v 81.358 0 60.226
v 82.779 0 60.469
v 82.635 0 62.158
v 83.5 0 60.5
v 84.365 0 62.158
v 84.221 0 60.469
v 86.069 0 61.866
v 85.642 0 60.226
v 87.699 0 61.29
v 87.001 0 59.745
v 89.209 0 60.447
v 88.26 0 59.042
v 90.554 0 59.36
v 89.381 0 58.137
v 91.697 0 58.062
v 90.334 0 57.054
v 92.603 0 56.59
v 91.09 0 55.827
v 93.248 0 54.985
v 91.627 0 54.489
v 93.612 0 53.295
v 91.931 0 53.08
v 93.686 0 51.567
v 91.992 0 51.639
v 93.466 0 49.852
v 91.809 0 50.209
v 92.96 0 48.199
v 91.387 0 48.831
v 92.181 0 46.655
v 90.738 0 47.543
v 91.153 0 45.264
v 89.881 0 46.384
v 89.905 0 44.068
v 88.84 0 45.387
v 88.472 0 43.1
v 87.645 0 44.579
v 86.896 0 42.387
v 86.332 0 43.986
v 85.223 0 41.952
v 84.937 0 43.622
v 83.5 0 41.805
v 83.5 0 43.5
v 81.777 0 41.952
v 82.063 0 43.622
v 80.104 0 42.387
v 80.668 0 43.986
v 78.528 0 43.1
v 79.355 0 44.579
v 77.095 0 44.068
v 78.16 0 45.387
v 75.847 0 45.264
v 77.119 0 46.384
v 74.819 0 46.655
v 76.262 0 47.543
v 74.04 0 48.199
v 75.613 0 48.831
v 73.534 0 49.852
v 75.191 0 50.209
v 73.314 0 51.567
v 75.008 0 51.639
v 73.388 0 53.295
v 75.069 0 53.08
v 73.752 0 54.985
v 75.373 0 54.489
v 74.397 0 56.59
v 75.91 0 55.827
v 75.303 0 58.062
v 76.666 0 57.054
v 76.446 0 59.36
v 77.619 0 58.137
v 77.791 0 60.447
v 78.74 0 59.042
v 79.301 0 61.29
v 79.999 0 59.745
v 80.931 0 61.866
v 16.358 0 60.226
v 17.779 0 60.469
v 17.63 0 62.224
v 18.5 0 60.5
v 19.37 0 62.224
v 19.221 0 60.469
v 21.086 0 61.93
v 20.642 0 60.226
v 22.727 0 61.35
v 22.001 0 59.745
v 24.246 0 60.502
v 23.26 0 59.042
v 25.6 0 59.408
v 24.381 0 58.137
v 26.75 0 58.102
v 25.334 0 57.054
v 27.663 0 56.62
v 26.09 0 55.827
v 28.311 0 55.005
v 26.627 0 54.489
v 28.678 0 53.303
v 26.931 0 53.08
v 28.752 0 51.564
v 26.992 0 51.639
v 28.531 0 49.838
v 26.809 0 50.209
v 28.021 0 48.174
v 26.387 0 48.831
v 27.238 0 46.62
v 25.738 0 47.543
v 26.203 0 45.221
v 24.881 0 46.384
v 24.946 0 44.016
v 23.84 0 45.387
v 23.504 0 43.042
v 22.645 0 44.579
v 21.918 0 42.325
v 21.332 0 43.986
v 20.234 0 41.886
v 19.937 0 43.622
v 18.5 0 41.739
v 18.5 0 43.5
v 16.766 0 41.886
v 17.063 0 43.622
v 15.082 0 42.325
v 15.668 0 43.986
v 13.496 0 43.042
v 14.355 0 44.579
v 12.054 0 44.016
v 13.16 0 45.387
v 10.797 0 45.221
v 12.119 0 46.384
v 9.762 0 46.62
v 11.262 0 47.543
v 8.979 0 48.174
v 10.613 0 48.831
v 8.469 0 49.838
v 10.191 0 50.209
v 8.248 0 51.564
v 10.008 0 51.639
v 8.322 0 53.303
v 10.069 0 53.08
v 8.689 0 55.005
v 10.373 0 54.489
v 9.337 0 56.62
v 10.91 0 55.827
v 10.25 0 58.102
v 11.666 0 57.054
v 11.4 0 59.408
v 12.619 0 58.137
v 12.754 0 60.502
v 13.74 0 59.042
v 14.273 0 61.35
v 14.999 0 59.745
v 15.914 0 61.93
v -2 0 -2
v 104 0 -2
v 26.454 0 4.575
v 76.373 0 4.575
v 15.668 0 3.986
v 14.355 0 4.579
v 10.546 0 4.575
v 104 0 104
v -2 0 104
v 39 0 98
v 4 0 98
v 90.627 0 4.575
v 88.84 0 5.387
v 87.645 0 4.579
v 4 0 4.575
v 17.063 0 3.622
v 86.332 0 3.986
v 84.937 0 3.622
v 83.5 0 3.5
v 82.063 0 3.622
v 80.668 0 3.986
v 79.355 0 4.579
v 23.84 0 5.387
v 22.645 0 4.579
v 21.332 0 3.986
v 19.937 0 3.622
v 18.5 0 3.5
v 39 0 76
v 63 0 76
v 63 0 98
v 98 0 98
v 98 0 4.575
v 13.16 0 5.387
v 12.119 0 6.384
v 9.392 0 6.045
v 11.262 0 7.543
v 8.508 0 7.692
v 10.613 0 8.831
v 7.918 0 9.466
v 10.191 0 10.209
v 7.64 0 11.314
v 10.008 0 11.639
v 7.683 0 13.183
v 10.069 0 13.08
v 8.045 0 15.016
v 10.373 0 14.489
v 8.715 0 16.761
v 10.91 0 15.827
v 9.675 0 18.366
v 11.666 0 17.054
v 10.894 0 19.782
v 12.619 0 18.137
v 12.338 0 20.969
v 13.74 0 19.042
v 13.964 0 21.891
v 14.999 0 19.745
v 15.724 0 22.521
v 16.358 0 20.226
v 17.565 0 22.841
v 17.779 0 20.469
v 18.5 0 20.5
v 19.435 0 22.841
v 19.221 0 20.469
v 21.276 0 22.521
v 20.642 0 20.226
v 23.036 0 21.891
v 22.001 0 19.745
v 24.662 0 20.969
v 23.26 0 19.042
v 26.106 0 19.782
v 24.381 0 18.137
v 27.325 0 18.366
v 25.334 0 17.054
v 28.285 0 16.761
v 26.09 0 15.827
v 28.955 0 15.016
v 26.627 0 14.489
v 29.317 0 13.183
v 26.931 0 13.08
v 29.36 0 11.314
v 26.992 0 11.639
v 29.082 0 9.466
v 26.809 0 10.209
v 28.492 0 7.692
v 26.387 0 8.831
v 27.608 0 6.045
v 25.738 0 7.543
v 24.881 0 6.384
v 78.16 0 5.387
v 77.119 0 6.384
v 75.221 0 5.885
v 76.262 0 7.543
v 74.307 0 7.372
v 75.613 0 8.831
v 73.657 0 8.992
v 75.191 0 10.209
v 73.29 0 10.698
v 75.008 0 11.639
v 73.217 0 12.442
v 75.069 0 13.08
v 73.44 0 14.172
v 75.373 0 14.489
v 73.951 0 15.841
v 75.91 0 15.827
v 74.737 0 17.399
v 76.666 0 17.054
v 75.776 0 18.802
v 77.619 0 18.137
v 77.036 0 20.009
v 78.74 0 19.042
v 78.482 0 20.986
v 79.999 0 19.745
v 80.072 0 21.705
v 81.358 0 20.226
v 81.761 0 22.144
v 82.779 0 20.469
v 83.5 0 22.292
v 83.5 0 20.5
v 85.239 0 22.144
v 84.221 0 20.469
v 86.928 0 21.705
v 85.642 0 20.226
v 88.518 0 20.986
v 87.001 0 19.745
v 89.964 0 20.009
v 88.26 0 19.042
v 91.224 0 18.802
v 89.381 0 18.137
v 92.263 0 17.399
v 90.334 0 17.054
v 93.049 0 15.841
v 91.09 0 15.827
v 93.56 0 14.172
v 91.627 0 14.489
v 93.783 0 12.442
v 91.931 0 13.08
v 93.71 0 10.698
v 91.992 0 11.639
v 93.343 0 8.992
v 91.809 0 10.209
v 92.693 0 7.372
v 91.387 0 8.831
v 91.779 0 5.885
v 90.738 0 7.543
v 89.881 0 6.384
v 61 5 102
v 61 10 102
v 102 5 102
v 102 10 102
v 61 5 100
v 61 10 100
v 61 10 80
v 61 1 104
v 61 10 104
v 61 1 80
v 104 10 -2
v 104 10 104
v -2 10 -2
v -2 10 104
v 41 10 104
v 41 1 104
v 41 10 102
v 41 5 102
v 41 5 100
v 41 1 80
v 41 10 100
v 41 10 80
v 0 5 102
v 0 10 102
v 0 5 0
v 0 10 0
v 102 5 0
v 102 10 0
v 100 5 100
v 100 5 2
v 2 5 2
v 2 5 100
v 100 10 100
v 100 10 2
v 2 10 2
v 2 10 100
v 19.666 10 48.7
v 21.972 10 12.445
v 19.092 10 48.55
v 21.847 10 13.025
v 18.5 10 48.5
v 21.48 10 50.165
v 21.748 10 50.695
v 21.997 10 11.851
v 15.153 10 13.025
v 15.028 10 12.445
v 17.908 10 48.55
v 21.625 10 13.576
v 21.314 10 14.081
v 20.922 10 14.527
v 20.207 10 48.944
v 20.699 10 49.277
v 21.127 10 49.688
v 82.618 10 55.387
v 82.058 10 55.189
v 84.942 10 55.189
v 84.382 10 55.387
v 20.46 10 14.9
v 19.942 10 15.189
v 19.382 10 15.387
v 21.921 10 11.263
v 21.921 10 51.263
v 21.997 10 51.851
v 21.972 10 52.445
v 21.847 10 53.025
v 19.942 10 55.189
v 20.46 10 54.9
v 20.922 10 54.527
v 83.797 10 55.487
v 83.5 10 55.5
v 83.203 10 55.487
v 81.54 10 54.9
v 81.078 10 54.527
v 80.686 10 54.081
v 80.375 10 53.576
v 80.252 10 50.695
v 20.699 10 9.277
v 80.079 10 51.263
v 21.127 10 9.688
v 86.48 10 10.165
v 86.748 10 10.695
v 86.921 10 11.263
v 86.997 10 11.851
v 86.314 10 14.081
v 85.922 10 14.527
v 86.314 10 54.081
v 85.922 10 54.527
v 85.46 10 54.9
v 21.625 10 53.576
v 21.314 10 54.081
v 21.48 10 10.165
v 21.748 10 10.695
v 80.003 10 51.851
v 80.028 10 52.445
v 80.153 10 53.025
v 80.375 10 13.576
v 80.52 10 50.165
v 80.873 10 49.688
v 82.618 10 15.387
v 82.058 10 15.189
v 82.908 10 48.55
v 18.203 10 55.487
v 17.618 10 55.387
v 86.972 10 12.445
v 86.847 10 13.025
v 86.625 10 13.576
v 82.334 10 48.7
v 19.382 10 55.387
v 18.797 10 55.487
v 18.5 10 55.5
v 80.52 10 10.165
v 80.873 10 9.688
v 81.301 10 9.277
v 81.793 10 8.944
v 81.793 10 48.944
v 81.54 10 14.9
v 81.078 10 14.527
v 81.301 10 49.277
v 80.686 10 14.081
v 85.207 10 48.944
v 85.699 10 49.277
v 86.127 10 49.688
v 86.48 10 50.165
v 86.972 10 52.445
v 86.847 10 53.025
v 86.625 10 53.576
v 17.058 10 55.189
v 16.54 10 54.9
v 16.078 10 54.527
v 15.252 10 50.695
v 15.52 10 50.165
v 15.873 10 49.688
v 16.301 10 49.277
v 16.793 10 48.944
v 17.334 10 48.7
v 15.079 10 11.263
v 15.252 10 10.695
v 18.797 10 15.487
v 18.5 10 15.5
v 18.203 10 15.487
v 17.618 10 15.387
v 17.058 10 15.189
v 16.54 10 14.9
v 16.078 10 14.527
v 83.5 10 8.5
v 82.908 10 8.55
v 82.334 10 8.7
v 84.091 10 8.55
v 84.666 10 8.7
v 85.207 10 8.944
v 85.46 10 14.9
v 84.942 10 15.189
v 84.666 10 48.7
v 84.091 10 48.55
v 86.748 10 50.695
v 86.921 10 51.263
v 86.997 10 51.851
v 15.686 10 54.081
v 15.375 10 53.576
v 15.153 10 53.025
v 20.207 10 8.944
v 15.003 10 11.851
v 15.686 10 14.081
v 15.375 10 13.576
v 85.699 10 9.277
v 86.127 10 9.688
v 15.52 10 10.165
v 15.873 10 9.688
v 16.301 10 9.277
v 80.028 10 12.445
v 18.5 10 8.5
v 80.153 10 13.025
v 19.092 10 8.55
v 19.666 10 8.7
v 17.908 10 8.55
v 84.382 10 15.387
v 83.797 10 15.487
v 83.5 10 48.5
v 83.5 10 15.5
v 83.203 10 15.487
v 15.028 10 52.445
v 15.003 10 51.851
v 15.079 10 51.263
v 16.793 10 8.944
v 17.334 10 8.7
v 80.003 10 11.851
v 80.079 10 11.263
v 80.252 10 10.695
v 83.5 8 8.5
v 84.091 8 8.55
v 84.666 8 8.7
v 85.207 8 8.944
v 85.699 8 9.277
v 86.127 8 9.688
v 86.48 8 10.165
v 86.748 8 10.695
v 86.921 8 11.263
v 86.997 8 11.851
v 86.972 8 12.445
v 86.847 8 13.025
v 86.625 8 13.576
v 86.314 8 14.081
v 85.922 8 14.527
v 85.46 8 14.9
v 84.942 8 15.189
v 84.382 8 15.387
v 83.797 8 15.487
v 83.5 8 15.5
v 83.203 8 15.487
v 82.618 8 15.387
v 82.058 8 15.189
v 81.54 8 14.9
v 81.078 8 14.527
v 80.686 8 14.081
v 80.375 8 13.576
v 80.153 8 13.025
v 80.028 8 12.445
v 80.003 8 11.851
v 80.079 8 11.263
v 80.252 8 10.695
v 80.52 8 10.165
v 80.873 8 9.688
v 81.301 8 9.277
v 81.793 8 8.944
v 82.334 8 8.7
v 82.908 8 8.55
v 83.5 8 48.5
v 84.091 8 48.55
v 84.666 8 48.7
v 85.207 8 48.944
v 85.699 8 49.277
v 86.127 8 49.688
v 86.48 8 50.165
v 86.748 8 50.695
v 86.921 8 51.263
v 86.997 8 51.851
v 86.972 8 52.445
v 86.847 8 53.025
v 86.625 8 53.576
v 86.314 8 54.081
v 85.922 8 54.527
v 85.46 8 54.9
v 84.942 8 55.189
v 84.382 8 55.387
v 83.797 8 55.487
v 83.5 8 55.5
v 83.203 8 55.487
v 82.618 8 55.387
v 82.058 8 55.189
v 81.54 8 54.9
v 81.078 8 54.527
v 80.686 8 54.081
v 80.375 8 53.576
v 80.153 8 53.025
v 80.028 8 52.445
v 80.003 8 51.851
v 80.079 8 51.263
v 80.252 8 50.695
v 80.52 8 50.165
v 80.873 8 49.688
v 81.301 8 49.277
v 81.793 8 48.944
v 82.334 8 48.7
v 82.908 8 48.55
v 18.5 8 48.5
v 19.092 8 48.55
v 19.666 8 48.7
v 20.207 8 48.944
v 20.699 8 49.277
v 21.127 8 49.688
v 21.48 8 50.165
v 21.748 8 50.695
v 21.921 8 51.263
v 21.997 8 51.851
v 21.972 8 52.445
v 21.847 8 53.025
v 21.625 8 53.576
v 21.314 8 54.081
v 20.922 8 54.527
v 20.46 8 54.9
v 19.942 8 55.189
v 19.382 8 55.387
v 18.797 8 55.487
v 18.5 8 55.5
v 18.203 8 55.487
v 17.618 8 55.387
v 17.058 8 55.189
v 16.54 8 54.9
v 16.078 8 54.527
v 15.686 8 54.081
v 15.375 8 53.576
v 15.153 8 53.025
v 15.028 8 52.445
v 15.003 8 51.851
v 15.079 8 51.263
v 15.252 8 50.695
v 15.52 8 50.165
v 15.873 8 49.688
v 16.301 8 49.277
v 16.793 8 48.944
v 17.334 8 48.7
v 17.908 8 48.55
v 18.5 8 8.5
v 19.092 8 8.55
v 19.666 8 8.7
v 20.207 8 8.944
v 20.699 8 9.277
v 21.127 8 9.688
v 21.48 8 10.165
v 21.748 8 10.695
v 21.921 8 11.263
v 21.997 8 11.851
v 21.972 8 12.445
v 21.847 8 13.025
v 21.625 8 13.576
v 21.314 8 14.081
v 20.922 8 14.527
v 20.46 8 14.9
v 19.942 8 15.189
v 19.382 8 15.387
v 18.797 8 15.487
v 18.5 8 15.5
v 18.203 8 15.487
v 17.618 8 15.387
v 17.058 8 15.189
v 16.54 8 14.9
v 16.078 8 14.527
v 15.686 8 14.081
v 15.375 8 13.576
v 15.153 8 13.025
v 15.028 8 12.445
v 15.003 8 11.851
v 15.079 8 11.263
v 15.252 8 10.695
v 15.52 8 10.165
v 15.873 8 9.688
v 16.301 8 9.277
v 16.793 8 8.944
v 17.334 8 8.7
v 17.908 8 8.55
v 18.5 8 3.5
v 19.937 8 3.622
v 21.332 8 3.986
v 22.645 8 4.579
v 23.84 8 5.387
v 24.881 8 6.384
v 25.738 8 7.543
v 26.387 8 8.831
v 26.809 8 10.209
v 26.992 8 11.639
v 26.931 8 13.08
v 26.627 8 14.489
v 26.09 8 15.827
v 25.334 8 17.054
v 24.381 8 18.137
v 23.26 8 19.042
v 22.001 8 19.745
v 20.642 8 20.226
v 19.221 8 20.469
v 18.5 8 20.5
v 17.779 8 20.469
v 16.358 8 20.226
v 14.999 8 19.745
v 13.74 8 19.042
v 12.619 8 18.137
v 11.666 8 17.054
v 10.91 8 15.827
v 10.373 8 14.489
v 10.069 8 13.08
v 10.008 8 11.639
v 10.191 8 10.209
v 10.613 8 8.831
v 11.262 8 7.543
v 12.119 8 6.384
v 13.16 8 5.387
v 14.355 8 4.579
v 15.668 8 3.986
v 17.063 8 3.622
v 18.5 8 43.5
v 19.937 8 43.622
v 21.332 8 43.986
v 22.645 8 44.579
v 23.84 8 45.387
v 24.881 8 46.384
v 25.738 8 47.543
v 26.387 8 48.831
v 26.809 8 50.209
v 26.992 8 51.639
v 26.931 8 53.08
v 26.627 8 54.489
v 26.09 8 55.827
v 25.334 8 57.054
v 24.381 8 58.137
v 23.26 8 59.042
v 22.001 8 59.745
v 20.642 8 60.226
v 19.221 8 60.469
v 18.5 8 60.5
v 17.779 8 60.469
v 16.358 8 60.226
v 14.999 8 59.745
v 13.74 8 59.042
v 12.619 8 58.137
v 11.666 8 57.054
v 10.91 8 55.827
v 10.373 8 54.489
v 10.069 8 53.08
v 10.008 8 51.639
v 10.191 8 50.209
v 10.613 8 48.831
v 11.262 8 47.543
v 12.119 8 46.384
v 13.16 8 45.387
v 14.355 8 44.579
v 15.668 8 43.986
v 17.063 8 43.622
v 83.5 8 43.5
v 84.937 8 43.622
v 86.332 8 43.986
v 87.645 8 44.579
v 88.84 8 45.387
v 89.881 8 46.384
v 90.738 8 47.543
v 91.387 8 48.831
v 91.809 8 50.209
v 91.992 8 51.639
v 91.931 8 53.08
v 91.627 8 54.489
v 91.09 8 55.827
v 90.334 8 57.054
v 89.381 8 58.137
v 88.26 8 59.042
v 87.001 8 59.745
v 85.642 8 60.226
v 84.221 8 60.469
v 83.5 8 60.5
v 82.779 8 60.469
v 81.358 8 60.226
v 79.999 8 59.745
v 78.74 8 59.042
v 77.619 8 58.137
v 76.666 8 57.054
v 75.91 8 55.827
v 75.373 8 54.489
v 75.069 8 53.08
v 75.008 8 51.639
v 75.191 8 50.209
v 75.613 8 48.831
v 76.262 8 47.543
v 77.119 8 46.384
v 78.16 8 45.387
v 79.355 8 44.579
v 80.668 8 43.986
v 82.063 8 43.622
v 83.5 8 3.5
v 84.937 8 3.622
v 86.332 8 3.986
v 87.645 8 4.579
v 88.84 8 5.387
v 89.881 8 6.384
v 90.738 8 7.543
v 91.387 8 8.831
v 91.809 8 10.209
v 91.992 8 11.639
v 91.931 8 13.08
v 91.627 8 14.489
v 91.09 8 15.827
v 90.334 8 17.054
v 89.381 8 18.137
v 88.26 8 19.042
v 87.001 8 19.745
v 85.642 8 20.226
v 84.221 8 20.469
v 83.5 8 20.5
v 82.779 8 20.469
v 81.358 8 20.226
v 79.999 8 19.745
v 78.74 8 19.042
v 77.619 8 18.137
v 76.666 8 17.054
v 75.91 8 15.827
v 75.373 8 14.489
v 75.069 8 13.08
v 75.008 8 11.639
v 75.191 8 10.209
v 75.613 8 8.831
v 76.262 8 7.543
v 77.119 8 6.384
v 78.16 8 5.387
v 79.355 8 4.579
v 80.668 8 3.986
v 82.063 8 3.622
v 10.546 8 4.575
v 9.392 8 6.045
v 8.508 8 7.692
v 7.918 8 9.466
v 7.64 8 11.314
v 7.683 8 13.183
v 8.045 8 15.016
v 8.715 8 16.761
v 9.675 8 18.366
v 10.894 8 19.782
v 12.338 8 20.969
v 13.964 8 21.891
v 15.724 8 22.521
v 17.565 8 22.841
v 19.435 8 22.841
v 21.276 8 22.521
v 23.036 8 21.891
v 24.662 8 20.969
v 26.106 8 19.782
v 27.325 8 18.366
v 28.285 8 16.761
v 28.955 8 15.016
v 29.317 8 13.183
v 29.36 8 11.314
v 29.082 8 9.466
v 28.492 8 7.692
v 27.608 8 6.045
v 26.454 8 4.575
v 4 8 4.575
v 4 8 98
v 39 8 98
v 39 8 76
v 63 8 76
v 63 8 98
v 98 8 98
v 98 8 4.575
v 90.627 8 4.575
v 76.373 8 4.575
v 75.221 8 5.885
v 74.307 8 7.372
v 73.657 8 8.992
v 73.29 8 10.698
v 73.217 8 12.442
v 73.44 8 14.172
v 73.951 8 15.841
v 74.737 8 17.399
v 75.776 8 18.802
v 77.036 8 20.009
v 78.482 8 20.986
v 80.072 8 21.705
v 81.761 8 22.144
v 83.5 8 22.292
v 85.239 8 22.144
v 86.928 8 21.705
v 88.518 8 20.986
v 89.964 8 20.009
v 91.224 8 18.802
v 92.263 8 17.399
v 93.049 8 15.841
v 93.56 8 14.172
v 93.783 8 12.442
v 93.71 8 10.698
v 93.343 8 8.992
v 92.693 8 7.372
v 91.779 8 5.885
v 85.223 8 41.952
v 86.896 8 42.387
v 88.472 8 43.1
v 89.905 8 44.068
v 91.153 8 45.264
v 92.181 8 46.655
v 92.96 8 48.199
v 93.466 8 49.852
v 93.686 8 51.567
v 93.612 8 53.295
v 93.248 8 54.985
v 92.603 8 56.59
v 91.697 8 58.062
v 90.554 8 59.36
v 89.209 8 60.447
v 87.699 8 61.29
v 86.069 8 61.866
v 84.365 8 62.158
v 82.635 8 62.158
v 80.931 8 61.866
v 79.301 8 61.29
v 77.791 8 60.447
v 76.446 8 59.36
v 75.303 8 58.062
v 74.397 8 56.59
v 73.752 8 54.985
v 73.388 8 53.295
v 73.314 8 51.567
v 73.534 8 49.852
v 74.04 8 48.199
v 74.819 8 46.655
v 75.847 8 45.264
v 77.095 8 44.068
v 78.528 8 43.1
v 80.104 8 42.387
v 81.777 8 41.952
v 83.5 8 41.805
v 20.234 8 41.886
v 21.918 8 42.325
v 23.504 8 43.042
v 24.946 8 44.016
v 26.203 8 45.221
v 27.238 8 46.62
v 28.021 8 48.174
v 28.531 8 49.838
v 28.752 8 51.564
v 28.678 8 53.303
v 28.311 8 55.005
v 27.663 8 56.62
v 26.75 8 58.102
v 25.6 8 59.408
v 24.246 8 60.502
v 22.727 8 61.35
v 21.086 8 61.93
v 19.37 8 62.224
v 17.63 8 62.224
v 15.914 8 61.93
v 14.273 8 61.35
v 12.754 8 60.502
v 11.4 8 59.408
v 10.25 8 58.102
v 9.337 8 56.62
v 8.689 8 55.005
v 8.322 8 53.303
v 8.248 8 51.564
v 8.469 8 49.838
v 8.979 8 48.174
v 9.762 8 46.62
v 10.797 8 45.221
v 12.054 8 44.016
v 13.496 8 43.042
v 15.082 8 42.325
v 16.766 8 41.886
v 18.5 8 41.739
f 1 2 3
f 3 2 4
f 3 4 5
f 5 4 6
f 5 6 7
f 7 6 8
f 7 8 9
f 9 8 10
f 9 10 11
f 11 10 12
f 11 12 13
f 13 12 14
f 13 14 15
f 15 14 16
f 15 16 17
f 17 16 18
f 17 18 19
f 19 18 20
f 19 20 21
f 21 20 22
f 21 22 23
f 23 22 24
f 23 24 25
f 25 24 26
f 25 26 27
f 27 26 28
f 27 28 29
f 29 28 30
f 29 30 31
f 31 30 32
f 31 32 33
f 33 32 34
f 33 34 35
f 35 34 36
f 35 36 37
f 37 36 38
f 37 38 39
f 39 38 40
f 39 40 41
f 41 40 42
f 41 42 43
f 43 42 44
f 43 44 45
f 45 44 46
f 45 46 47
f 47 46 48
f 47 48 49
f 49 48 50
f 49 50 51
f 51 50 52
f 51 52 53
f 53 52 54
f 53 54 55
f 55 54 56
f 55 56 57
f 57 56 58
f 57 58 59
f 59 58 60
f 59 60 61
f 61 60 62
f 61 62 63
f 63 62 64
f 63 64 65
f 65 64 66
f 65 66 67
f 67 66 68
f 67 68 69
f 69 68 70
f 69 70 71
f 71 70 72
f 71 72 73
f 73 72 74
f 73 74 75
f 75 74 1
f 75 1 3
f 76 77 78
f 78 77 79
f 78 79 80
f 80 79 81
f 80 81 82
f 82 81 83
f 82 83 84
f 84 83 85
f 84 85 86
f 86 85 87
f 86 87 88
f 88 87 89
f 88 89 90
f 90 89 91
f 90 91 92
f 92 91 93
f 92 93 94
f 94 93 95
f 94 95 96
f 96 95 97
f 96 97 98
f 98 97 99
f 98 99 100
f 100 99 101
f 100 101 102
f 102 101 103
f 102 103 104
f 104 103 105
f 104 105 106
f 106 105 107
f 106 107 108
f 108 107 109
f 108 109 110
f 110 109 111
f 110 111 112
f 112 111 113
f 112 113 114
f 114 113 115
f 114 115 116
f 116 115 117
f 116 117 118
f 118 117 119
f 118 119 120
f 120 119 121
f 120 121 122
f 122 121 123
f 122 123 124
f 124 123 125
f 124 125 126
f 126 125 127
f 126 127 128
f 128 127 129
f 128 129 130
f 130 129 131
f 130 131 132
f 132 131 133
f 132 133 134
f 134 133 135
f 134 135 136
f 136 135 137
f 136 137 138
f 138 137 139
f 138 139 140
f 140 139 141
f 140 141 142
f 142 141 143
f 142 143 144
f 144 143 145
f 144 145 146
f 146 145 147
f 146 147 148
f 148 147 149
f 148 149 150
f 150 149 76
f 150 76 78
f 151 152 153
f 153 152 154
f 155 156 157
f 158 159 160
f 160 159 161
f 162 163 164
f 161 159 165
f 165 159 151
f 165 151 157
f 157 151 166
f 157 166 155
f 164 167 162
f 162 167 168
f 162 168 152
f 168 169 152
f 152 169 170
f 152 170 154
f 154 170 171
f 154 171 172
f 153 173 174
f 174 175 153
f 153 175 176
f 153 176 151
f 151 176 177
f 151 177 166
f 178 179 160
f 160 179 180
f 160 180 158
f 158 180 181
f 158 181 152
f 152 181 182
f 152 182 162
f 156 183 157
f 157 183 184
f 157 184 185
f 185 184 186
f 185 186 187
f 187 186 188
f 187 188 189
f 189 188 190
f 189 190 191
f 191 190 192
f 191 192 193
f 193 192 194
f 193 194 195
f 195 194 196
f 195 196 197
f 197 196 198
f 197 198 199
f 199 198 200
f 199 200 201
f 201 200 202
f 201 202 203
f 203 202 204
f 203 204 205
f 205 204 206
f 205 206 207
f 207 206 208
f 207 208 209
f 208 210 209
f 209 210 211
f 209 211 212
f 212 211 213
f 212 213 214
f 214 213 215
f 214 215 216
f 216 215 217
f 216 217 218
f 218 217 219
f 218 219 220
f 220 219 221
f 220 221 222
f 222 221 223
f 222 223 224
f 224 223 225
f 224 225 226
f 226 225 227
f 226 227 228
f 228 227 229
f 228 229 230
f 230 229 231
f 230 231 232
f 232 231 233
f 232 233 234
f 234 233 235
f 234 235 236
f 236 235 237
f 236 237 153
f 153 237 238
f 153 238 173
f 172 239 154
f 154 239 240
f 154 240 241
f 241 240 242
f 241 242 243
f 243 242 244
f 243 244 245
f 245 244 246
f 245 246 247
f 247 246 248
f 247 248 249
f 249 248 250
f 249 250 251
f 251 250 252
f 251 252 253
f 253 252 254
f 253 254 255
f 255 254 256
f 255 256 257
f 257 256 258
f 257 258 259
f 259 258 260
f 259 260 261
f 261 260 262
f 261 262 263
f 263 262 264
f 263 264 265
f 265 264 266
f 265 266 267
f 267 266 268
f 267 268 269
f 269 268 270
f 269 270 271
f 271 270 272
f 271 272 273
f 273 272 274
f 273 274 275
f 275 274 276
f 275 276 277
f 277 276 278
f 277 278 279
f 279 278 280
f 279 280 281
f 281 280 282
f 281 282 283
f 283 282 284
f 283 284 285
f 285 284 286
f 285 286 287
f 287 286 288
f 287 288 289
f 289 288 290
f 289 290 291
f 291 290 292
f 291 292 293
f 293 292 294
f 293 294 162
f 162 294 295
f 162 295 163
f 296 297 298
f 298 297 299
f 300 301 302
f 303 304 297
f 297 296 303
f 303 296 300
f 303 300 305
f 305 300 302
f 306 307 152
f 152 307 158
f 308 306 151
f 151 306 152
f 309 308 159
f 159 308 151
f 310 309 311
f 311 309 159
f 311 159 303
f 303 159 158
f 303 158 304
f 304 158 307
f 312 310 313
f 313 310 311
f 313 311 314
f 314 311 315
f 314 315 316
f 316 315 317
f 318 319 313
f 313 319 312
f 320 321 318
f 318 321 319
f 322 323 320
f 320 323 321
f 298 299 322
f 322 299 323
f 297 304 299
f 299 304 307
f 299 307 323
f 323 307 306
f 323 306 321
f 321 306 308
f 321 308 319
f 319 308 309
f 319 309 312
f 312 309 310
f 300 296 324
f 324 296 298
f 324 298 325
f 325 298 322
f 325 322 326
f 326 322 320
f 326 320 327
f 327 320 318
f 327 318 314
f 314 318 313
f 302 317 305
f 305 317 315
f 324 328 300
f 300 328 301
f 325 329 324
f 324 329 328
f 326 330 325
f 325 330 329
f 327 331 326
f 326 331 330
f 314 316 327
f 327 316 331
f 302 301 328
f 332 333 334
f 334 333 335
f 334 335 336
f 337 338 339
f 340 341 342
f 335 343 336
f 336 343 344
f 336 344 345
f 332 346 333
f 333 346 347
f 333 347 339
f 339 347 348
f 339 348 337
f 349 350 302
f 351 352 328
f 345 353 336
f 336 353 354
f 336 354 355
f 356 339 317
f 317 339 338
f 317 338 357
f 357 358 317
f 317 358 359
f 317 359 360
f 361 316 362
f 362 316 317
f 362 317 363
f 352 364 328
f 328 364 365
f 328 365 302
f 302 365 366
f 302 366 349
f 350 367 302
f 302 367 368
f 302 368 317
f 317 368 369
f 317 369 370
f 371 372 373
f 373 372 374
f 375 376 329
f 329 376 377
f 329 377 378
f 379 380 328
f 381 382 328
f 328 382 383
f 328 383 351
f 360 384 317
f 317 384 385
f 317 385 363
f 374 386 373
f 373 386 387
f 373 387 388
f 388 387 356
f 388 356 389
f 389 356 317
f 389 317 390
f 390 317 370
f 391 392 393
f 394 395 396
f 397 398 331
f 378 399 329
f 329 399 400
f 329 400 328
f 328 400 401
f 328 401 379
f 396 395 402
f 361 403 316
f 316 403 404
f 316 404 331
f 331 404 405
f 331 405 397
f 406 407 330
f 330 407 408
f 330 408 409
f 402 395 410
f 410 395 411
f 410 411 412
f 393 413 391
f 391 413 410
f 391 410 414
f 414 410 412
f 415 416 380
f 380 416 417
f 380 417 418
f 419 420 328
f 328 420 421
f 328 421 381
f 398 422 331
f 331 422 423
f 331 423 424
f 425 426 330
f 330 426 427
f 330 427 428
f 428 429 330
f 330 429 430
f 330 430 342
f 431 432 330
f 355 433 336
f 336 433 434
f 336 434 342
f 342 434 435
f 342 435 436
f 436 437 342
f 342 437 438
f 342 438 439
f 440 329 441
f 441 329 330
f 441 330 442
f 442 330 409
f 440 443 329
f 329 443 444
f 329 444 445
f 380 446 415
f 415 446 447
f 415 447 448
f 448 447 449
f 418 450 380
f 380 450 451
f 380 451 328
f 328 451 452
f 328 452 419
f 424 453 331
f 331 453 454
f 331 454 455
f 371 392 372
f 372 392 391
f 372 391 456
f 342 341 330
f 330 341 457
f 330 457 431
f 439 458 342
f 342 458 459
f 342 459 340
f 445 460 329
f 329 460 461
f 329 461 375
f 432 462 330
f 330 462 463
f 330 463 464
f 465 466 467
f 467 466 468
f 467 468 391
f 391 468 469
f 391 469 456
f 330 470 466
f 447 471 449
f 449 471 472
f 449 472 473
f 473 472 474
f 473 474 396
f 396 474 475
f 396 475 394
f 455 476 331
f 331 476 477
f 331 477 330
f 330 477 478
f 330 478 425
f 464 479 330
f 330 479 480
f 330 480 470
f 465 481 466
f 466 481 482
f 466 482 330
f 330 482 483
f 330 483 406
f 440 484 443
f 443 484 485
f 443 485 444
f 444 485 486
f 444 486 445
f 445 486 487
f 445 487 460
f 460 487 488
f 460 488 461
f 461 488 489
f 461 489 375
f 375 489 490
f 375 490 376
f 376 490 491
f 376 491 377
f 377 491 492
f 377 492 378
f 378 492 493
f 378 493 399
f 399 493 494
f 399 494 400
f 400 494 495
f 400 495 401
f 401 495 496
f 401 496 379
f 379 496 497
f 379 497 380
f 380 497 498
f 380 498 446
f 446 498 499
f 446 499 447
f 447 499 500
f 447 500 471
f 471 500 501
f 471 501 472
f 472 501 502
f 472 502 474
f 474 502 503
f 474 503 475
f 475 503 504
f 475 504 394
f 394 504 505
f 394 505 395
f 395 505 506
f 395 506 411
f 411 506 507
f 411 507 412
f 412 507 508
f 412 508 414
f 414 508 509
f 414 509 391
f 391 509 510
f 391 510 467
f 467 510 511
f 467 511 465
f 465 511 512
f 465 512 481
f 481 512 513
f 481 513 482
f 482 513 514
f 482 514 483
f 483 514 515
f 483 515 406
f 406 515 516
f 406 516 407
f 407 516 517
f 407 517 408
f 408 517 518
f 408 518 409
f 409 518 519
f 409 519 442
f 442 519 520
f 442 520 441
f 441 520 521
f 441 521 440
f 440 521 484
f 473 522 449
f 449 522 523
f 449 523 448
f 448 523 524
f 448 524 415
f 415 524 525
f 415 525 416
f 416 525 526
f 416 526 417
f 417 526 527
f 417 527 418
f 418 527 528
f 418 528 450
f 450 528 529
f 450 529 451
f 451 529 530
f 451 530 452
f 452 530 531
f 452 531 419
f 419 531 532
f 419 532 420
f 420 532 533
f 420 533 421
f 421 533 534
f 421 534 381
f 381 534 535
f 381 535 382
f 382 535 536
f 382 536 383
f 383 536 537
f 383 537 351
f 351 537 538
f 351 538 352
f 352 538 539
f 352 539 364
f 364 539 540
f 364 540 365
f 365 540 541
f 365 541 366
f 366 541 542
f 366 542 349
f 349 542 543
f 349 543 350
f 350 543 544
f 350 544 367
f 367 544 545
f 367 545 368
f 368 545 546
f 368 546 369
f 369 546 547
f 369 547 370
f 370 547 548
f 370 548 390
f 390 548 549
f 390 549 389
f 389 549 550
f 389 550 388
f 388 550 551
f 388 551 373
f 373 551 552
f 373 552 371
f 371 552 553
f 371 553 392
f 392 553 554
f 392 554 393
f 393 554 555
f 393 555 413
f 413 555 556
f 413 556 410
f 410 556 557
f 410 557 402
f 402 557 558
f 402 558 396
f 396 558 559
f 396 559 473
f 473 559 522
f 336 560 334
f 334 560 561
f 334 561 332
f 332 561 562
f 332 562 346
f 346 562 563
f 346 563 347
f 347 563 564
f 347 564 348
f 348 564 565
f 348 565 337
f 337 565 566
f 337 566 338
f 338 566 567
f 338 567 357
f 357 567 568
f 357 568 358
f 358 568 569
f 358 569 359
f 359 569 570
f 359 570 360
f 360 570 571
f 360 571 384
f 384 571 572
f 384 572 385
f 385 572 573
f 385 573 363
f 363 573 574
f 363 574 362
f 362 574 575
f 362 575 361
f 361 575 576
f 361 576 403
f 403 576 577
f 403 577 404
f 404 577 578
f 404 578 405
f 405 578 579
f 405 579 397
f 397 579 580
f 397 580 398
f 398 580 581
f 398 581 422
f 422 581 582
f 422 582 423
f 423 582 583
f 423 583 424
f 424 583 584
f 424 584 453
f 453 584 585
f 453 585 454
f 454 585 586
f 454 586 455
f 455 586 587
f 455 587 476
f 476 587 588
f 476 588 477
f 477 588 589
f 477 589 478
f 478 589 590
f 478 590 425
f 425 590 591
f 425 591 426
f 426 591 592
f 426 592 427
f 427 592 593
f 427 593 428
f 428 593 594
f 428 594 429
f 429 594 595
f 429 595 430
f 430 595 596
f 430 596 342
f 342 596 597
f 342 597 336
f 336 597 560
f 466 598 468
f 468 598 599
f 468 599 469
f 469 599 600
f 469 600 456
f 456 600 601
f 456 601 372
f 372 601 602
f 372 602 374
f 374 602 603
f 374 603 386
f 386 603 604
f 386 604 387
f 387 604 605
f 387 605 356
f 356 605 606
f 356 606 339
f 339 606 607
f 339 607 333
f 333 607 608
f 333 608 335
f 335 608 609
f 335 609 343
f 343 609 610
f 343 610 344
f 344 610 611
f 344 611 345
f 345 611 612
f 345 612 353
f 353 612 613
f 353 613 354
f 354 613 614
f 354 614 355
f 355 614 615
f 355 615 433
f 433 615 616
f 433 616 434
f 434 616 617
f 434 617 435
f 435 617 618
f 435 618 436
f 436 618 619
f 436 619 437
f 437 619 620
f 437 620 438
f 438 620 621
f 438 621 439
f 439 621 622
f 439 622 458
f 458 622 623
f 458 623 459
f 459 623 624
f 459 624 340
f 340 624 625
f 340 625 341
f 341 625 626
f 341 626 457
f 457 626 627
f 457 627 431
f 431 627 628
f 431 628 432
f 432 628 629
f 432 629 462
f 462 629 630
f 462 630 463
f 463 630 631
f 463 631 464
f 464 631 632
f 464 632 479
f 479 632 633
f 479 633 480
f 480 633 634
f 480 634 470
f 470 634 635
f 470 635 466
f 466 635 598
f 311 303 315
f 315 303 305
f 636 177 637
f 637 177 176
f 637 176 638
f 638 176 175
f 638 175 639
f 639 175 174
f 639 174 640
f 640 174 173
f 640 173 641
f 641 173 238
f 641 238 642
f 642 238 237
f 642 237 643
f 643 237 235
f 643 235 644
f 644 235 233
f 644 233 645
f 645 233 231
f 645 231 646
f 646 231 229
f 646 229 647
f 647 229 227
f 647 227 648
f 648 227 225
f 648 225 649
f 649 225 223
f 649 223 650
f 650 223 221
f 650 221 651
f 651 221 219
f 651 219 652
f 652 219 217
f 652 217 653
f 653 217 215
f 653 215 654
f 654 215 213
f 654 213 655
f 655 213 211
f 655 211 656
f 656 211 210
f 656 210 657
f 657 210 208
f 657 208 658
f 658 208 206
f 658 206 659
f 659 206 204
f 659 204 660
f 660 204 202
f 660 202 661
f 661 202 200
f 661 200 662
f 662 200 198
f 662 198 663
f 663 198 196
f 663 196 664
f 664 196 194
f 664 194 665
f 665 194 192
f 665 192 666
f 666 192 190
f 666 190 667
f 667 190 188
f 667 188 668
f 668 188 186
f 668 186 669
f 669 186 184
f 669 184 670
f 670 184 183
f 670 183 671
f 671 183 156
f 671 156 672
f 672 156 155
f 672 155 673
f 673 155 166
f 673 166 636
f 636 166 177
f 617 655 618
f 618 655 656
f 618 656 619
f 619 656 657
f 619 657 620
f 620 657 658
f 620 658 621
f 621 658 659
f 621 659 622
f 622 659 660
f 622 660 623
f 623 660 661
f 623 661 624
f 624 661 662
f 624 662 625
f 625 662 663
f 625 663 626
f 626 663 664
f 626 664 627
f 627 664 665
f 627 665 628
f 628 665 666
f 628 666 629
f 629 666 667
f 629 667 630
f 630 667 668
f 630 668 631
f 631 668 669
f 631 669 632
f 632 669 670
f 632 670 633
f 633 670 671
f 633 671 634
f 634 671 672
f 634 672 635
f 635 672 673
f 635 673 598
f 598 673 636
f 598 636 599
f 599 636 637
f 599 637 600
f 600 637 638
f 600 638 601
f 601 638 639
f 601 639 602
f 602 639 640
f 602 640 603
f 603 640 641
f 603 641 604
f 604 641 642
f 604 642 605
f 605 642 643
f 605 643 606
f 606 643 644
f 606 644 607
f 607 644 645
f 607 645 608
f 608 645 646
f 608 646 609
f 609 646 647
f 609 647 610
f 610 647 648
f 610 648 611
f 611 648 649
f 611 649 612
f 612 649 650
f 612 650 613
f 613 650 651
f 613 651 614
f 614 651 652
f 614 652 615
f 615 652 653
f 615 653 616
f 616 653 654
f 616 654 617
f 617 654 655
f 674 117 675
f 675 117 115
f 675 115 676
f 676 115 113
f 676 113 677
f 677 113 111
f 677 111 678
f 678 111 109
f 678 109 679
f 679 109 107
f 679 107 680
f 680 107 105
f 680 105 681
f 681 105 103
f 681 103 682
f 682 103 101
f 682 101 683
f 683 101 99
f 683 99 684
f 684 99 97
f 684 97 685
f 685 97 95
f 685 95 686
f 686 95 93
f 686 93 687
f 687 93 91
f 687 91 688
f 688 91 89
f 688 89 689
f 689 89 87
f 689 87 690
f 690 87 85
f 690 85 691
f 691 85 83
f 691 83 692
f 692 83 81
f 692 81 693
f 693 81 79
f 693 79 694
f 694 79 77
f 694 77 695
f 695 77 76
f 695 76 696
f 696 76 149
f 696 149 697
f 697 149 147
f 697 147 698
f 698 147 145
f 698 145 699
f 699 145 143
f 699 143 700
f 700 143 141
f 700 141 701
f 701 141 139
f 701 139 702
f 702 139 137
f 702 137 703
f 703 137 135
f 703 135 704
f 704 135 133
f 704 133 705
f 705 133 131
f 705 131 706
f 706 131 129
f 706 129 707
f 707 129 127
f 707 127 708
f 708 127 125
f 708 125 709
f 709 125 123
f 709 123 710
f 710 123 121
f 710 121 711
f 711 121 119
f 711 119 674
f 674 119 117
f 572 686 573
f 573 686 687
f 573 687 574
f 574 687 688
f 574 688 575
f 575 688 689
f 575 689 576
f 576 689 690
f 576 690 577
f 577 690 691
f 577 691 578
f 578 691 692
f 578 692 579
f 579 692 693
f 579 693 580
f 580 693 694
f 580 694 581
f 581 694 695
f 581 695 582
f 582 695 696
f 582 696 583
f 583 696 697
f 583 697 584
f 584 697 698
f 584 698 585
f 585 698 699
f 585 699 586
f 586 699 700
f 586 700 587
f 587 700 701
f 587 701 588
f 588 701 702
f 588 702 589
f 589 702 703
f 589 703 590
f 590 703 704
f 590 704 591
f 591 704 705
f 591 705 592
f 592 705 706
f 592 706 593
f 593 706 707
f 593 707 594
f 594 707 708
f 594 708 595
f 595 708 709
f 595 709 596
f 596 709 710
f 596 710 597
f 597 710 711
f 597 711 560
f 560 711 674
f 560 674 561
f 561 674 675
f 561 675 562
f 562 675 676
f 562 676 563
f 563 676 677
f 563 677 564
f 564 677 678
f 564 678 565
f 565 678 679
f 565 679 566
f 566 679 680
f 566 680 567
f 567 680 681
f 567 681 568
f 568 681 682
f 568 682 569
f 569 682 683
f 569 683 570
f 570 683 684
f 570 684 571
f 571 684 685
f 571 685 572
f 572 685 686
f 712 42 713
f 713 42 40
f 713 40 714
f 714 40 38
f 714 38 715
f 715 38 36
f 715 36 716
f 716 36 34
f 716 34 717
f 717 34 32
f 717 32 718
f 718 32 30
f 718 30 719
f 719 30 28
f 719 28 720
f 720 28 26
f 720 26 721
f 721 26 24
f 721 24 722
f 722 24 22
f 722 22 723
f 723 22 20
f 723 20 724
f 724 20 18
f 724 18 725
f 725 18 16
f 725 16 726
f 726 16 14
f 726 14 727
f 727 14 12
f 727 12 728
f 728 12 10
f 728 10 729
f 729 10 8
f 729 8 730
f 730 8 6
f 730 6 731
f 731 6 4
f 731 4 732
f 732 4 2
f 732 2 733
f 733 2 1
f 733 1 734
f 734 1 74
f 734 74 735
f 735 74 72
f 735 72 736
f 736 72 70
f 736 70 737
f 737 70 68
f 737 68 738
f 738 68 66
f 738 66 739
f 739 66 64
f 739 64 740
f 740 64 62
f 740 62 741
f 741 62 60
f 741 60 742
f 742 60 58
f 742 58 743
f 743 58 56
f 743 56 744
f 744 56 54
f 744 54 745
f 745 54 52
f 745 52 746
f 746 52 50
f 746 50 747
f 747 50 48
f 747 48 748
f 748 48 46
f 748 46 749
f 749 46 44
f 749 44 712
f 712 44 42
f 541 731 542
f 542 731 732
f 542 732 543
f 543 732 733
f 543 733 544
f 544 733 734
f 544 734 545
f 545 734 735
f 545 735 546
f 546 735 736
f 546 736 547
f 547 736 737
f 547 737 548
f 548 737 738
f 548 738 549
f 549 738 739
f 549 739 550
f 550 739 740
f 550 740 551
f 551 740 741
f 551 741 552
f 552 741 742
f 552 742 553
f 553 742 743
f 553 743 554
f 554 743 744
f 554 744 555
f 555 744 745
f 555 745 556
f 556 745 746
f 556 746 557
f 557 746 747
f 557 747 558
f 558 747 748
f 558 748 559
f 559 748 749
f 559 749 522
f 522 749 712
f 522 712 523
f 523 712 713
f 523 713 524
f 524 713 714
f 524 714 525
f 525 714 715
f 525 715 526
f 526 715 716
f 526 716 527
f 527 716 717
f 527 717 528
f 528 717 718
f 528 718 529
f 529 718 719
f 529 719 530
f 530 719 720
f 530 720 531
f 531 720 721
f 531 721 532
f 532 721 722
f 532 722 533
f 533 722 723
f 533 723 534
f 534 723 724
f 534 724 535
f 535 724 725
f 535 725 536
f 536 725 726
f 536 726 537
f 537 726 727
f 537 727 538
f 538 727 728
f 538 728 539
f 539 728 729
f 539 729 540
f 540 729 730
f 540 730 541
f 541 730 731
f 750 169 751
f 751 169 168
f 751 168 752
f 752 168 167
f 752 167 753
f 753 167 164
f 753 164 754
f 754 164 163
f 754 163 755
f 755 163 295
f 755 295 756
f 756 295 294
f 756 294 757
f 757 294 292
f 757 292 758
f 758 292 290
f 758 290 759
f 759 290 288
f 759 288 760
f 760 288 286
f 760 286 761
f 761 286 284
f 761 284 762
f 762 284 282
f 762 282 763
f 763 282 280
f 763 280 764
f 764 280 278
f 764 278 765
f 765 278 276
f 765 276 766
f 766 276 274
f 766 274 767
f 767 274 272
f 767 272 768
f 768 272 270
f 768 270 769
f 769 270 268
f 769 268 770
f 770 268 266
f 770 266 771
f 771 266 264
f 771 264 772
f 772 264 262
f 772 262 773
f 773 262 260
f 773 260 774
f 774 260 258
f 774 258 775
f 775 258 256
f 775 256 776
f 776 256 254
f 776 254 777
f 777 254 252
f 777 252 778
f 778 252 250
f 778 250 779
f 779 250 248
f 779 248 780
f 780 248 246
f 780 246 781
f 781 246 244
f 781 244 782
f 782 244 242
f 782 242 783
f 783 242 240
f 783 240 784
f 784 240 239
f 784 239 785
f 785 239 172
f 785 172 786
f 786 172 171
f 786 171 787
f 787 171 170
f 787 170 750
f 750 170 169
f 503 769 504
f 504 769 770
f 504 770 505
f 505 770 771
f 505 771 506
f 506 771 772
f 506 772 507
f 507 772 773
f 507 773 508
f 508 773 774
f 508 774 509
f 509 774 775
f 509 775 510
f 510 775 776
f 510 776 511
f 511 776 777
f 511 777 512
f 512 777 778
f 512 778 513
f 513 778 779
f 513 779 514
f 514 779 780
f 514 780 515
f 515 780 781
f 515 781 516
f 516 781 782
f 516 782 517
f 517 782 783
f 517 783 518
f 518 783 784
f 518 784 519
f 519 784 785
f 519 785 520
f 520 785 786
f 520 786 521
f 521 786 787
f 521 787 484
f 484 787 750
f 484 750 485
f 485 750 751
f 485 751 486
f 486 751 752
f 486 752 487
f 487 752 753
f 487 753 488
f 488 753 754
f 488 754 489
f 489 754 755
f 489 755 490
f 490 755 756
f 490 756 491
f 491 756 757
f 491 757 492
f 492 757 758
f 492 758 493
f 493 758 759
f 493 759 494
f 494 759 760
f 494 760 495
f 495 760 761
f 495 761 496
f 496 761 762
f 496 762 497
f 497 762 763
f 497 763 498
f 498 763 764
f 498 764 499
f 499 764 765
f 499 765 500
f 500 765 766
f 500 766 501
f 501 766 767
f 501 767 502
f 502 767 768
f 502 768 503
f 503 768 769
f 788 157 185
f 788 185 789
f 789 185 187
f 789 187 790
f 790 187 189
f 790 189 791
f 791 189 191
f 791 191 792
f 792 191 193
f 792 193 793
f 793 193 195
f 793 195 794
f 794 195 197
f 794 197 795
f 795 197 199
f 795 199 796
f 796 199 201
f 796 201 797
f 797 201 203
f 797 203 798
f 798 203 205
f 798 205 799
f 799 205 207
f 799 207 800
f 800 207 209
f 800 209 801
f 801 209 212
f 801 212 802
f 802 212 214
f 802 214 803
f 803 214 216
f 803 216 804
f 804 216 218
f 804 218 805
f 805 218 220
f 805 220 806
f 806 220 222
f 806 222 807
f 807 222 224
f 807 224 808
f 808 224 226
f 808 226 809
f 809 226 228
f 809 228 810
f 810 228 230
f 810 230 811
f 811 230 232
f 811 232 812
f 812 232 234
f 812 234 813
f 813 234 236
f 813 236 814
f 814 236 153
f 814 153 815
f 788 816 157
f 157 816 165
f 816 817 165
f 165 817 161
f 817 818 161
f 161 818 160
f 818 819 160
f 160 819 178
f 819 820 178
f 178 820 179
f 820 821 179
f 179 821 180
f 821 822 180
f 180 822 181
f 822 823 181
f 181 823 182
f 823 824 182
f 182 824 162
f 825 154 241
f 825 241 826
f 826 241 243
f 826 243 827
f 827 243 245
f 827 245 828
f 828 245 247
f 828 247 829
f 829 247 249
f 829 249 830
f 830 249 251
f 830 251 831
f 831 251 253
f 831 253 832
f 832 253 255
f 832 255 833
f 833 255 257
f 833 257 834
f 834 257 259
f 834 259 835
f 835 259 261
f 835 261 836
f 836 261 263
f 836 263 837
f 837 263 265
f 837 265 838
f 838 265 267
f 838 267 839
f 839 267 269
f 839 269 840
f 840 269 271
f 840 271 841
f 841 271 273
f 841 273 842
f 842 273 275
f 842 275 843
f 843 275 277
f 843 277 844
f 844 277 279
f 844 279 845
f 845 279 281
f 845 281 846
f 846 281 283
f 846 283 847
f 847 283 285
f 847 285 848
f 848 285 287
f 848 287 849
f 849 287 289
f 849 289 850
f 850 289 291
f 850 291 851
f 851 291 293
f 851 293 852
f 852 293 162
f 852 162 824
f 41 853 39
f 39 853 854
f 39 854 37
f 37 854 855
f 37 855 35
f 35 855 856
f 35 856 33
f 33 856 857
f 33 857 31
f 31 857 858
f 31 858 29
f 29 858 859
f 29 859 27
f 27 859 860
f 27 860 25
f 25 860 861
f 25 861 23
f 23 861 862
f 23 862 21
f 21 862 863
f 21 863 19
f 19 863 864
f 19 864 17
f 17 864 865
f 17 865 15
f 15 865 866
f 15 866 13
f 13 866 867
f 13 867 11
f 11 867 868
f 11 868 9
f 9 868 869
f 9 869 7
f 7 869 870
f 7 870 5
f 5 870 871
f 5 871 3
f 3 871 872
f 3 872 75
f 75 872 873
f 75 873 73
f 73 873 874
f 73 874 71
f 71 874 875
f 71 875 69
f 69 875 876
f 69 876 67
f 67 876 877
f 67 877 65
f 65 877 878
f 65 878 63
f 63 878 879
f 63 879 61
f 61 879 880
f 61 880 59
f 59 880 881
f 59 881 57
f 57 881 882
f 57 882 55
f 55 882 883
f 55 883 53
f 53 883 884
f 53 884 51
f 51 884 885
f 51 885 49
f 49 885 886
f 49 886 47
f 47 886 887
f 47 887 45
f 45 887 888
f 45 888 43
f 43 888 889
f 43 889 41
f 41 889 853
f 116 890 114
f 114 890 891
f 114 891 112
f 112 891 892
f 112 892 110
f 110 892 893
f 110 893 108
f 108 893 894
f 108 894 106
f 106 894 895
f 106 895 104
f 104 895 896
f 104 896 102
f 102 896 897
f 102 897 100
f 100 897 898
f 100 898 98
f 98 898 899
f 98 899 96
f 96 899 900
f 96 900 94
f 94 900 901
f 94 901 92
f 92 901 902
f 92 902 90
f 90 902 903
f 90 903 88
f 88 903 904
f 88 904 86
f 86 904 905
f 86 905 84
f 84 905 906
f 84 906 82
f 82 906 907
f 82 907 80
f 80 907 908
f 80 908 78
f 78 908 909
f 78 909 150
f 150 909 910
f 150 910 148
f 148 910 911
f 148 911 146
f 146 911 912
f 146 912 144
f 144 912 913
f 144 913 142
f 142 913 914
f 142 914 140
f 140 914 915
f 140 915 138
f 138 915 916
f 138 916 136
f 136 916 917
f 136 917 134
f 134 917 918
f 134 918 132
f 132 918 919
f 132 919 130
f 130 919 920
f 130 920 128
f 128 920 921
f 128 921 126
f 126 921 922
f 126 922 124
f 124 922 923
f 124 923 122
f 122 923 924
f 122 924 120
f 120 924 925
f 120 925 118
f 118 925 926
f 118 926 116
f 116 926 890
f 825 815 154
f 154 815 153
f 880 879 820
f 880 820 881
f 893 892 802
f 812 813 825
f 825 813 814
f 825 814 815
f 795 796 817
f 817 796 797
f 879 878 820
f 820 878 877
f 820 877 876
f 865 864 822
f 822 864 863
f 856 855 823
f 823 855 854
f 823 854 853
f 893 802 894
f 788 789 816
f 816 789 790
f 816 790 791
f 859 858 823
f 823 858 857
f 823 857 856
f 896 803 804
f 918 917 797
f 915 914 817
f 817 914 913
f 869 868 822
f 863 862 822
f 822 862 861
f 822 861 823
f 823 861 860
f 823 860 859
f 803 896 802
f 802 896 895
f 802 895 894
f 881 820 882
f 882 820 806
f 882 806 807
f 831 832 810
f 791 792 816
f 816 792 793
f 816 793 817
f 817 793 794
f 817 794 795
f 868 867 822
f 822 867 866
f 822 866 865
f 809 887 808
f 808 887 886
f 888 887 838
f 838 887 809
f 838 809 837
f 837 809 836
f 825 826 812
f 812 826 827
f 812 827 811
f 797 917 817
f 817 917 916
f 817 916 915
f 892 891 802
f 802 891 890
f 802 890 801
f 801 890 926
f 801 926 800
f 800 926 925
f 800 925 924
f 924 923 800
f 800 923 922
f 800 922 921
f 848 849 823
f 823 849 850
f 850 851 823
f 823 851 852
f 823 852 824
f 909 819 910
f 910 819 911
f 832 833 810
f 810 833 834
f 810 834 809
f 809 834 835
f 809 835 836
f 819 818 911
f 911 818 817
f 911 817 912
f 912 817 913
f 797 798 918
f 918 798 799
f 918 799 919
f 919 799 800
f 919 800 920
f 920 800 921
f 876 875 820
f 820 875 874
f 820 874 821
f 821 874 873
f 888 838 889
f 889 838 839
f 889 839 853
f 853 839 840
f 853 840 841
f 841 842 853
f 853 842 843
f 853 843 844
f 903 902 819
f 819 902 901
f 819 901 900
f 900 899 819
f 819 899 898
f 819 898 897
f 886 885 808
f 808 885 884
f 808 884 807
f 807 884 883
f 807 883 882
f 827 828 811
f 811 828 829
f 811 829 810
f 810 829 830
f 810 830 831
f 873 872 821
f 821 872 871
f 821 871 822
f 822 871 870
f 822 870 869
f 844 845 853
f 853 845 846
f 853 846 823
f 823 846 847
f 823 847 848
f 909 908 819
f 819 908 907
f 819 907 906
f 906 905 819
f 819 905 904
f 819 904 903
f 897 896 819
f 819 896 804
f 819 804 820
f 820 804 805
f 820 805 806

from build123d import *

# Parameters (mm, degrees)
BOSS_EXTRUDE1_DEPTH   = 10
SKETCH1_R             = 3.5
BOSS_EXTRUDE1_2_DEPTH = 10
BOSS_EXTRUDE2_DEPTH   = 5
SKETCH1_6_W           = 20
SKETCH1_6_H           = 24
BOSS_EXTRUDE3_DEPTH   = 1
SKETCH1_7_R           = 8.5
SKETCH1_7_R_2         = 3.5
CUT_EXTRUDE1_DEPTH    = 8
SKETCH2_R             = 10.261268268
SKETCH2_R_2           = 10.194878558
CUT_EXTRUDE4_DEPTH    = 8


with BuildPart() as part:
    # Sketch1 → Boss-Extrude1 (new body)
    with BuildSketch(Plane(origin=(0, 0, 0), x_dir=(1, 0, 0), z_dir=(0, 1, 0))):
        Polygon((0, -102), (0, 0), (102, 0), (102, -102), (61, -102), (61, -104), (104, -104), (104, 2), (-2, 2), (-2, -104), (41, -104), (41, -102), align=None)
    extrude(amount=BOSS_EXTRUDE1_DEPTH)



with BuildPart() as body_2:
    # Sketch1 → Boss-Extrude1 2 (new body)
    with BuildSketch(Plane(origin=(0, 0, 0), x_dir=(1, 0, 0), z_dir=(0, 1, 0))):
        Polygon((2, -100), (41, -100), (41, -80), (61, -80), (61, -100), (100, -100), (100, -2), (2, -2), align=None)
        with Locations((18.5, -52)):
            Circle(SKETCH1_R, mode=Mode.SUBTRACT)
        with Locations((83.5, -52)):
            Circle(SKETCH1_R, mode=Mode.SUBTRACT)
        with Locations((18.5, -12)):
            Circle(SKETCH1_R, mode=Mode.SUBTRACT)
        with Locations((83.5, -12)):
            Circle(SKETCH1_R, mode=Mode.SUBTRACT)
    extrude(amount=BOSS_EXTRUDE1_2_DEPTH)


with BuildPart() as part_1:
    add(part.part)

    add(body_2.part)  # Boss-Extrude2 merges body 2
    # Sketch1<5> → Boss-Extrude2 (add)
    with BuildSketch(Plane(origin=(0, 0, 0), x_dir=(1, 0, 0), z_dir=(0, 1, 0))):
        Polygon((102, 0), (0, 0), (0, -102), (41, -102), (41, -100), (2, -100), (2, -2), (100, -2), (100, -100), (61, -100), (61, -102), (102, -102), align=None)
    extrude(amount=BOSS_EXTRUDE2_DEPTH)

    # Sketch1<6> → Boss-Extrude3 (add)
    with BuildSketch(Plane(origin=(0, 0, 0), x_dir=(1, 0, 0), z_dir=(0, 1, 0))):
        with Locations((51, -92)):
            Rectangle(SKETCH1_6_W, SKETCH1_6_H)
    extrude(amount=BOSS_EXTRUDE3_DEPTH)

    # Sketch1<7> → Cut-Extrude1 (cut)
    # profile 1 of 4: a face of its own
    with BuildSketch(Plane(origin=(0, 0, 0), x_dir=(1, 0, 0), z_dir=(0, 1, 0))):
        with Locations((18.5, -12)):
            Circle(SKETCH1_7_R)
        with Locations((18.5, -12)):
            Circle(SKETCH1_7_R_2, mode=Mode.SUBTRACT)
    # profile 2 of 4: a face of its own
    with BuildSketch(Plane(origin=(0, 0, 0), x_dir=(1, 0, 0), z_dir=(0, 1, 0))):
        with Locations((83.5, -12)):
            Circle(SKETCH1_7_R)
        with Locations((83.5, -12)):
            Circle(SKETCH1_7_R_2, mode=Mode.SUBTRACT)
    # profile 3 of 4: a face of its own
    with BuildSketch(Plane(origin=(0, 0, 0), x_dir=(1, 0, 0), z_dir=(0, 1, 0))):
        with Locations((18.5, -52)):
            Circle(SKETCH1_7_R)
        with Locations((18.5, -52)):
            Circle(SKETCH1_7_R_2, mode=Mode.SUBTRACT)
    # profile 4 of 4: a face of its own
    with BuildSketch(Plane(origin=(0, 0, 0), x_dir=(1, 0, 0), z_dir=(0, 1, 0))):
        with Locations((83.5, -52)):
            Circle(SKETCH1_7_R)
        with Locations((83.5, -52)):
            Circle(SKETCH1_7_R_2, mode=Mode.SUBTRACT)
    extrude(amount=CUT_EXTRUDE1_DEPTH, mode=Mode.SUBTRACT)

    # Sketch2 → Cut-Extrude4 (cut)
    with BuildSketch(Plane.XZ):
        with BuildLine():
            Line((98, 4.574503774), (98, 98))
            Line((98, 98), (63, 98))
            Line((63, 98), (63, 76))
            Line((63, 76), (51, 76))
            Line((51, 76), (39, 76))
            Line((39, 76), (39, 98))
            Line((39, 98), (4, 98))
            Line((4, 98), (4, 4.574503774))
            Line((4, 4.574503774), (10.545814352, 4.574503774))
            ThreePointArc((10.545814352, 4.574503774), (14.509161453, 22.123253983), (29.381500977, 12))
            ThreePointArc((29.381500977, 12), (28.623253983, 8.009161453), (26.454185648, 4.574503774))
            Line((26.454185648, 4.574503774), (76.37304098, 4.574503774))
            ThreePointArc((76.37304098, 4.574503774), (79.46399305, 21.467955797), (93.792304848, 12))
            ThreePointArc((93.792304848, 12), (92.967955797, 7.96399305), (90.62695902, 4.574503774))
            Line((90.62695902, 4.574503774), (98, 4.574503774))
        make_face()
        with Locations((18.5, 52)):
            Circle(SKETCH2_R, mode=Mode.SUBTRACT)
        with Locations((83.5, 52)):
            Circle(SKETCH2_R_2, mode=Mode.SUBTRACT)
    extrude(amount=-CUT_EXTRUDE4_DEPTH, mode=Mode.SUBTRACT)


solid = part_1.part
